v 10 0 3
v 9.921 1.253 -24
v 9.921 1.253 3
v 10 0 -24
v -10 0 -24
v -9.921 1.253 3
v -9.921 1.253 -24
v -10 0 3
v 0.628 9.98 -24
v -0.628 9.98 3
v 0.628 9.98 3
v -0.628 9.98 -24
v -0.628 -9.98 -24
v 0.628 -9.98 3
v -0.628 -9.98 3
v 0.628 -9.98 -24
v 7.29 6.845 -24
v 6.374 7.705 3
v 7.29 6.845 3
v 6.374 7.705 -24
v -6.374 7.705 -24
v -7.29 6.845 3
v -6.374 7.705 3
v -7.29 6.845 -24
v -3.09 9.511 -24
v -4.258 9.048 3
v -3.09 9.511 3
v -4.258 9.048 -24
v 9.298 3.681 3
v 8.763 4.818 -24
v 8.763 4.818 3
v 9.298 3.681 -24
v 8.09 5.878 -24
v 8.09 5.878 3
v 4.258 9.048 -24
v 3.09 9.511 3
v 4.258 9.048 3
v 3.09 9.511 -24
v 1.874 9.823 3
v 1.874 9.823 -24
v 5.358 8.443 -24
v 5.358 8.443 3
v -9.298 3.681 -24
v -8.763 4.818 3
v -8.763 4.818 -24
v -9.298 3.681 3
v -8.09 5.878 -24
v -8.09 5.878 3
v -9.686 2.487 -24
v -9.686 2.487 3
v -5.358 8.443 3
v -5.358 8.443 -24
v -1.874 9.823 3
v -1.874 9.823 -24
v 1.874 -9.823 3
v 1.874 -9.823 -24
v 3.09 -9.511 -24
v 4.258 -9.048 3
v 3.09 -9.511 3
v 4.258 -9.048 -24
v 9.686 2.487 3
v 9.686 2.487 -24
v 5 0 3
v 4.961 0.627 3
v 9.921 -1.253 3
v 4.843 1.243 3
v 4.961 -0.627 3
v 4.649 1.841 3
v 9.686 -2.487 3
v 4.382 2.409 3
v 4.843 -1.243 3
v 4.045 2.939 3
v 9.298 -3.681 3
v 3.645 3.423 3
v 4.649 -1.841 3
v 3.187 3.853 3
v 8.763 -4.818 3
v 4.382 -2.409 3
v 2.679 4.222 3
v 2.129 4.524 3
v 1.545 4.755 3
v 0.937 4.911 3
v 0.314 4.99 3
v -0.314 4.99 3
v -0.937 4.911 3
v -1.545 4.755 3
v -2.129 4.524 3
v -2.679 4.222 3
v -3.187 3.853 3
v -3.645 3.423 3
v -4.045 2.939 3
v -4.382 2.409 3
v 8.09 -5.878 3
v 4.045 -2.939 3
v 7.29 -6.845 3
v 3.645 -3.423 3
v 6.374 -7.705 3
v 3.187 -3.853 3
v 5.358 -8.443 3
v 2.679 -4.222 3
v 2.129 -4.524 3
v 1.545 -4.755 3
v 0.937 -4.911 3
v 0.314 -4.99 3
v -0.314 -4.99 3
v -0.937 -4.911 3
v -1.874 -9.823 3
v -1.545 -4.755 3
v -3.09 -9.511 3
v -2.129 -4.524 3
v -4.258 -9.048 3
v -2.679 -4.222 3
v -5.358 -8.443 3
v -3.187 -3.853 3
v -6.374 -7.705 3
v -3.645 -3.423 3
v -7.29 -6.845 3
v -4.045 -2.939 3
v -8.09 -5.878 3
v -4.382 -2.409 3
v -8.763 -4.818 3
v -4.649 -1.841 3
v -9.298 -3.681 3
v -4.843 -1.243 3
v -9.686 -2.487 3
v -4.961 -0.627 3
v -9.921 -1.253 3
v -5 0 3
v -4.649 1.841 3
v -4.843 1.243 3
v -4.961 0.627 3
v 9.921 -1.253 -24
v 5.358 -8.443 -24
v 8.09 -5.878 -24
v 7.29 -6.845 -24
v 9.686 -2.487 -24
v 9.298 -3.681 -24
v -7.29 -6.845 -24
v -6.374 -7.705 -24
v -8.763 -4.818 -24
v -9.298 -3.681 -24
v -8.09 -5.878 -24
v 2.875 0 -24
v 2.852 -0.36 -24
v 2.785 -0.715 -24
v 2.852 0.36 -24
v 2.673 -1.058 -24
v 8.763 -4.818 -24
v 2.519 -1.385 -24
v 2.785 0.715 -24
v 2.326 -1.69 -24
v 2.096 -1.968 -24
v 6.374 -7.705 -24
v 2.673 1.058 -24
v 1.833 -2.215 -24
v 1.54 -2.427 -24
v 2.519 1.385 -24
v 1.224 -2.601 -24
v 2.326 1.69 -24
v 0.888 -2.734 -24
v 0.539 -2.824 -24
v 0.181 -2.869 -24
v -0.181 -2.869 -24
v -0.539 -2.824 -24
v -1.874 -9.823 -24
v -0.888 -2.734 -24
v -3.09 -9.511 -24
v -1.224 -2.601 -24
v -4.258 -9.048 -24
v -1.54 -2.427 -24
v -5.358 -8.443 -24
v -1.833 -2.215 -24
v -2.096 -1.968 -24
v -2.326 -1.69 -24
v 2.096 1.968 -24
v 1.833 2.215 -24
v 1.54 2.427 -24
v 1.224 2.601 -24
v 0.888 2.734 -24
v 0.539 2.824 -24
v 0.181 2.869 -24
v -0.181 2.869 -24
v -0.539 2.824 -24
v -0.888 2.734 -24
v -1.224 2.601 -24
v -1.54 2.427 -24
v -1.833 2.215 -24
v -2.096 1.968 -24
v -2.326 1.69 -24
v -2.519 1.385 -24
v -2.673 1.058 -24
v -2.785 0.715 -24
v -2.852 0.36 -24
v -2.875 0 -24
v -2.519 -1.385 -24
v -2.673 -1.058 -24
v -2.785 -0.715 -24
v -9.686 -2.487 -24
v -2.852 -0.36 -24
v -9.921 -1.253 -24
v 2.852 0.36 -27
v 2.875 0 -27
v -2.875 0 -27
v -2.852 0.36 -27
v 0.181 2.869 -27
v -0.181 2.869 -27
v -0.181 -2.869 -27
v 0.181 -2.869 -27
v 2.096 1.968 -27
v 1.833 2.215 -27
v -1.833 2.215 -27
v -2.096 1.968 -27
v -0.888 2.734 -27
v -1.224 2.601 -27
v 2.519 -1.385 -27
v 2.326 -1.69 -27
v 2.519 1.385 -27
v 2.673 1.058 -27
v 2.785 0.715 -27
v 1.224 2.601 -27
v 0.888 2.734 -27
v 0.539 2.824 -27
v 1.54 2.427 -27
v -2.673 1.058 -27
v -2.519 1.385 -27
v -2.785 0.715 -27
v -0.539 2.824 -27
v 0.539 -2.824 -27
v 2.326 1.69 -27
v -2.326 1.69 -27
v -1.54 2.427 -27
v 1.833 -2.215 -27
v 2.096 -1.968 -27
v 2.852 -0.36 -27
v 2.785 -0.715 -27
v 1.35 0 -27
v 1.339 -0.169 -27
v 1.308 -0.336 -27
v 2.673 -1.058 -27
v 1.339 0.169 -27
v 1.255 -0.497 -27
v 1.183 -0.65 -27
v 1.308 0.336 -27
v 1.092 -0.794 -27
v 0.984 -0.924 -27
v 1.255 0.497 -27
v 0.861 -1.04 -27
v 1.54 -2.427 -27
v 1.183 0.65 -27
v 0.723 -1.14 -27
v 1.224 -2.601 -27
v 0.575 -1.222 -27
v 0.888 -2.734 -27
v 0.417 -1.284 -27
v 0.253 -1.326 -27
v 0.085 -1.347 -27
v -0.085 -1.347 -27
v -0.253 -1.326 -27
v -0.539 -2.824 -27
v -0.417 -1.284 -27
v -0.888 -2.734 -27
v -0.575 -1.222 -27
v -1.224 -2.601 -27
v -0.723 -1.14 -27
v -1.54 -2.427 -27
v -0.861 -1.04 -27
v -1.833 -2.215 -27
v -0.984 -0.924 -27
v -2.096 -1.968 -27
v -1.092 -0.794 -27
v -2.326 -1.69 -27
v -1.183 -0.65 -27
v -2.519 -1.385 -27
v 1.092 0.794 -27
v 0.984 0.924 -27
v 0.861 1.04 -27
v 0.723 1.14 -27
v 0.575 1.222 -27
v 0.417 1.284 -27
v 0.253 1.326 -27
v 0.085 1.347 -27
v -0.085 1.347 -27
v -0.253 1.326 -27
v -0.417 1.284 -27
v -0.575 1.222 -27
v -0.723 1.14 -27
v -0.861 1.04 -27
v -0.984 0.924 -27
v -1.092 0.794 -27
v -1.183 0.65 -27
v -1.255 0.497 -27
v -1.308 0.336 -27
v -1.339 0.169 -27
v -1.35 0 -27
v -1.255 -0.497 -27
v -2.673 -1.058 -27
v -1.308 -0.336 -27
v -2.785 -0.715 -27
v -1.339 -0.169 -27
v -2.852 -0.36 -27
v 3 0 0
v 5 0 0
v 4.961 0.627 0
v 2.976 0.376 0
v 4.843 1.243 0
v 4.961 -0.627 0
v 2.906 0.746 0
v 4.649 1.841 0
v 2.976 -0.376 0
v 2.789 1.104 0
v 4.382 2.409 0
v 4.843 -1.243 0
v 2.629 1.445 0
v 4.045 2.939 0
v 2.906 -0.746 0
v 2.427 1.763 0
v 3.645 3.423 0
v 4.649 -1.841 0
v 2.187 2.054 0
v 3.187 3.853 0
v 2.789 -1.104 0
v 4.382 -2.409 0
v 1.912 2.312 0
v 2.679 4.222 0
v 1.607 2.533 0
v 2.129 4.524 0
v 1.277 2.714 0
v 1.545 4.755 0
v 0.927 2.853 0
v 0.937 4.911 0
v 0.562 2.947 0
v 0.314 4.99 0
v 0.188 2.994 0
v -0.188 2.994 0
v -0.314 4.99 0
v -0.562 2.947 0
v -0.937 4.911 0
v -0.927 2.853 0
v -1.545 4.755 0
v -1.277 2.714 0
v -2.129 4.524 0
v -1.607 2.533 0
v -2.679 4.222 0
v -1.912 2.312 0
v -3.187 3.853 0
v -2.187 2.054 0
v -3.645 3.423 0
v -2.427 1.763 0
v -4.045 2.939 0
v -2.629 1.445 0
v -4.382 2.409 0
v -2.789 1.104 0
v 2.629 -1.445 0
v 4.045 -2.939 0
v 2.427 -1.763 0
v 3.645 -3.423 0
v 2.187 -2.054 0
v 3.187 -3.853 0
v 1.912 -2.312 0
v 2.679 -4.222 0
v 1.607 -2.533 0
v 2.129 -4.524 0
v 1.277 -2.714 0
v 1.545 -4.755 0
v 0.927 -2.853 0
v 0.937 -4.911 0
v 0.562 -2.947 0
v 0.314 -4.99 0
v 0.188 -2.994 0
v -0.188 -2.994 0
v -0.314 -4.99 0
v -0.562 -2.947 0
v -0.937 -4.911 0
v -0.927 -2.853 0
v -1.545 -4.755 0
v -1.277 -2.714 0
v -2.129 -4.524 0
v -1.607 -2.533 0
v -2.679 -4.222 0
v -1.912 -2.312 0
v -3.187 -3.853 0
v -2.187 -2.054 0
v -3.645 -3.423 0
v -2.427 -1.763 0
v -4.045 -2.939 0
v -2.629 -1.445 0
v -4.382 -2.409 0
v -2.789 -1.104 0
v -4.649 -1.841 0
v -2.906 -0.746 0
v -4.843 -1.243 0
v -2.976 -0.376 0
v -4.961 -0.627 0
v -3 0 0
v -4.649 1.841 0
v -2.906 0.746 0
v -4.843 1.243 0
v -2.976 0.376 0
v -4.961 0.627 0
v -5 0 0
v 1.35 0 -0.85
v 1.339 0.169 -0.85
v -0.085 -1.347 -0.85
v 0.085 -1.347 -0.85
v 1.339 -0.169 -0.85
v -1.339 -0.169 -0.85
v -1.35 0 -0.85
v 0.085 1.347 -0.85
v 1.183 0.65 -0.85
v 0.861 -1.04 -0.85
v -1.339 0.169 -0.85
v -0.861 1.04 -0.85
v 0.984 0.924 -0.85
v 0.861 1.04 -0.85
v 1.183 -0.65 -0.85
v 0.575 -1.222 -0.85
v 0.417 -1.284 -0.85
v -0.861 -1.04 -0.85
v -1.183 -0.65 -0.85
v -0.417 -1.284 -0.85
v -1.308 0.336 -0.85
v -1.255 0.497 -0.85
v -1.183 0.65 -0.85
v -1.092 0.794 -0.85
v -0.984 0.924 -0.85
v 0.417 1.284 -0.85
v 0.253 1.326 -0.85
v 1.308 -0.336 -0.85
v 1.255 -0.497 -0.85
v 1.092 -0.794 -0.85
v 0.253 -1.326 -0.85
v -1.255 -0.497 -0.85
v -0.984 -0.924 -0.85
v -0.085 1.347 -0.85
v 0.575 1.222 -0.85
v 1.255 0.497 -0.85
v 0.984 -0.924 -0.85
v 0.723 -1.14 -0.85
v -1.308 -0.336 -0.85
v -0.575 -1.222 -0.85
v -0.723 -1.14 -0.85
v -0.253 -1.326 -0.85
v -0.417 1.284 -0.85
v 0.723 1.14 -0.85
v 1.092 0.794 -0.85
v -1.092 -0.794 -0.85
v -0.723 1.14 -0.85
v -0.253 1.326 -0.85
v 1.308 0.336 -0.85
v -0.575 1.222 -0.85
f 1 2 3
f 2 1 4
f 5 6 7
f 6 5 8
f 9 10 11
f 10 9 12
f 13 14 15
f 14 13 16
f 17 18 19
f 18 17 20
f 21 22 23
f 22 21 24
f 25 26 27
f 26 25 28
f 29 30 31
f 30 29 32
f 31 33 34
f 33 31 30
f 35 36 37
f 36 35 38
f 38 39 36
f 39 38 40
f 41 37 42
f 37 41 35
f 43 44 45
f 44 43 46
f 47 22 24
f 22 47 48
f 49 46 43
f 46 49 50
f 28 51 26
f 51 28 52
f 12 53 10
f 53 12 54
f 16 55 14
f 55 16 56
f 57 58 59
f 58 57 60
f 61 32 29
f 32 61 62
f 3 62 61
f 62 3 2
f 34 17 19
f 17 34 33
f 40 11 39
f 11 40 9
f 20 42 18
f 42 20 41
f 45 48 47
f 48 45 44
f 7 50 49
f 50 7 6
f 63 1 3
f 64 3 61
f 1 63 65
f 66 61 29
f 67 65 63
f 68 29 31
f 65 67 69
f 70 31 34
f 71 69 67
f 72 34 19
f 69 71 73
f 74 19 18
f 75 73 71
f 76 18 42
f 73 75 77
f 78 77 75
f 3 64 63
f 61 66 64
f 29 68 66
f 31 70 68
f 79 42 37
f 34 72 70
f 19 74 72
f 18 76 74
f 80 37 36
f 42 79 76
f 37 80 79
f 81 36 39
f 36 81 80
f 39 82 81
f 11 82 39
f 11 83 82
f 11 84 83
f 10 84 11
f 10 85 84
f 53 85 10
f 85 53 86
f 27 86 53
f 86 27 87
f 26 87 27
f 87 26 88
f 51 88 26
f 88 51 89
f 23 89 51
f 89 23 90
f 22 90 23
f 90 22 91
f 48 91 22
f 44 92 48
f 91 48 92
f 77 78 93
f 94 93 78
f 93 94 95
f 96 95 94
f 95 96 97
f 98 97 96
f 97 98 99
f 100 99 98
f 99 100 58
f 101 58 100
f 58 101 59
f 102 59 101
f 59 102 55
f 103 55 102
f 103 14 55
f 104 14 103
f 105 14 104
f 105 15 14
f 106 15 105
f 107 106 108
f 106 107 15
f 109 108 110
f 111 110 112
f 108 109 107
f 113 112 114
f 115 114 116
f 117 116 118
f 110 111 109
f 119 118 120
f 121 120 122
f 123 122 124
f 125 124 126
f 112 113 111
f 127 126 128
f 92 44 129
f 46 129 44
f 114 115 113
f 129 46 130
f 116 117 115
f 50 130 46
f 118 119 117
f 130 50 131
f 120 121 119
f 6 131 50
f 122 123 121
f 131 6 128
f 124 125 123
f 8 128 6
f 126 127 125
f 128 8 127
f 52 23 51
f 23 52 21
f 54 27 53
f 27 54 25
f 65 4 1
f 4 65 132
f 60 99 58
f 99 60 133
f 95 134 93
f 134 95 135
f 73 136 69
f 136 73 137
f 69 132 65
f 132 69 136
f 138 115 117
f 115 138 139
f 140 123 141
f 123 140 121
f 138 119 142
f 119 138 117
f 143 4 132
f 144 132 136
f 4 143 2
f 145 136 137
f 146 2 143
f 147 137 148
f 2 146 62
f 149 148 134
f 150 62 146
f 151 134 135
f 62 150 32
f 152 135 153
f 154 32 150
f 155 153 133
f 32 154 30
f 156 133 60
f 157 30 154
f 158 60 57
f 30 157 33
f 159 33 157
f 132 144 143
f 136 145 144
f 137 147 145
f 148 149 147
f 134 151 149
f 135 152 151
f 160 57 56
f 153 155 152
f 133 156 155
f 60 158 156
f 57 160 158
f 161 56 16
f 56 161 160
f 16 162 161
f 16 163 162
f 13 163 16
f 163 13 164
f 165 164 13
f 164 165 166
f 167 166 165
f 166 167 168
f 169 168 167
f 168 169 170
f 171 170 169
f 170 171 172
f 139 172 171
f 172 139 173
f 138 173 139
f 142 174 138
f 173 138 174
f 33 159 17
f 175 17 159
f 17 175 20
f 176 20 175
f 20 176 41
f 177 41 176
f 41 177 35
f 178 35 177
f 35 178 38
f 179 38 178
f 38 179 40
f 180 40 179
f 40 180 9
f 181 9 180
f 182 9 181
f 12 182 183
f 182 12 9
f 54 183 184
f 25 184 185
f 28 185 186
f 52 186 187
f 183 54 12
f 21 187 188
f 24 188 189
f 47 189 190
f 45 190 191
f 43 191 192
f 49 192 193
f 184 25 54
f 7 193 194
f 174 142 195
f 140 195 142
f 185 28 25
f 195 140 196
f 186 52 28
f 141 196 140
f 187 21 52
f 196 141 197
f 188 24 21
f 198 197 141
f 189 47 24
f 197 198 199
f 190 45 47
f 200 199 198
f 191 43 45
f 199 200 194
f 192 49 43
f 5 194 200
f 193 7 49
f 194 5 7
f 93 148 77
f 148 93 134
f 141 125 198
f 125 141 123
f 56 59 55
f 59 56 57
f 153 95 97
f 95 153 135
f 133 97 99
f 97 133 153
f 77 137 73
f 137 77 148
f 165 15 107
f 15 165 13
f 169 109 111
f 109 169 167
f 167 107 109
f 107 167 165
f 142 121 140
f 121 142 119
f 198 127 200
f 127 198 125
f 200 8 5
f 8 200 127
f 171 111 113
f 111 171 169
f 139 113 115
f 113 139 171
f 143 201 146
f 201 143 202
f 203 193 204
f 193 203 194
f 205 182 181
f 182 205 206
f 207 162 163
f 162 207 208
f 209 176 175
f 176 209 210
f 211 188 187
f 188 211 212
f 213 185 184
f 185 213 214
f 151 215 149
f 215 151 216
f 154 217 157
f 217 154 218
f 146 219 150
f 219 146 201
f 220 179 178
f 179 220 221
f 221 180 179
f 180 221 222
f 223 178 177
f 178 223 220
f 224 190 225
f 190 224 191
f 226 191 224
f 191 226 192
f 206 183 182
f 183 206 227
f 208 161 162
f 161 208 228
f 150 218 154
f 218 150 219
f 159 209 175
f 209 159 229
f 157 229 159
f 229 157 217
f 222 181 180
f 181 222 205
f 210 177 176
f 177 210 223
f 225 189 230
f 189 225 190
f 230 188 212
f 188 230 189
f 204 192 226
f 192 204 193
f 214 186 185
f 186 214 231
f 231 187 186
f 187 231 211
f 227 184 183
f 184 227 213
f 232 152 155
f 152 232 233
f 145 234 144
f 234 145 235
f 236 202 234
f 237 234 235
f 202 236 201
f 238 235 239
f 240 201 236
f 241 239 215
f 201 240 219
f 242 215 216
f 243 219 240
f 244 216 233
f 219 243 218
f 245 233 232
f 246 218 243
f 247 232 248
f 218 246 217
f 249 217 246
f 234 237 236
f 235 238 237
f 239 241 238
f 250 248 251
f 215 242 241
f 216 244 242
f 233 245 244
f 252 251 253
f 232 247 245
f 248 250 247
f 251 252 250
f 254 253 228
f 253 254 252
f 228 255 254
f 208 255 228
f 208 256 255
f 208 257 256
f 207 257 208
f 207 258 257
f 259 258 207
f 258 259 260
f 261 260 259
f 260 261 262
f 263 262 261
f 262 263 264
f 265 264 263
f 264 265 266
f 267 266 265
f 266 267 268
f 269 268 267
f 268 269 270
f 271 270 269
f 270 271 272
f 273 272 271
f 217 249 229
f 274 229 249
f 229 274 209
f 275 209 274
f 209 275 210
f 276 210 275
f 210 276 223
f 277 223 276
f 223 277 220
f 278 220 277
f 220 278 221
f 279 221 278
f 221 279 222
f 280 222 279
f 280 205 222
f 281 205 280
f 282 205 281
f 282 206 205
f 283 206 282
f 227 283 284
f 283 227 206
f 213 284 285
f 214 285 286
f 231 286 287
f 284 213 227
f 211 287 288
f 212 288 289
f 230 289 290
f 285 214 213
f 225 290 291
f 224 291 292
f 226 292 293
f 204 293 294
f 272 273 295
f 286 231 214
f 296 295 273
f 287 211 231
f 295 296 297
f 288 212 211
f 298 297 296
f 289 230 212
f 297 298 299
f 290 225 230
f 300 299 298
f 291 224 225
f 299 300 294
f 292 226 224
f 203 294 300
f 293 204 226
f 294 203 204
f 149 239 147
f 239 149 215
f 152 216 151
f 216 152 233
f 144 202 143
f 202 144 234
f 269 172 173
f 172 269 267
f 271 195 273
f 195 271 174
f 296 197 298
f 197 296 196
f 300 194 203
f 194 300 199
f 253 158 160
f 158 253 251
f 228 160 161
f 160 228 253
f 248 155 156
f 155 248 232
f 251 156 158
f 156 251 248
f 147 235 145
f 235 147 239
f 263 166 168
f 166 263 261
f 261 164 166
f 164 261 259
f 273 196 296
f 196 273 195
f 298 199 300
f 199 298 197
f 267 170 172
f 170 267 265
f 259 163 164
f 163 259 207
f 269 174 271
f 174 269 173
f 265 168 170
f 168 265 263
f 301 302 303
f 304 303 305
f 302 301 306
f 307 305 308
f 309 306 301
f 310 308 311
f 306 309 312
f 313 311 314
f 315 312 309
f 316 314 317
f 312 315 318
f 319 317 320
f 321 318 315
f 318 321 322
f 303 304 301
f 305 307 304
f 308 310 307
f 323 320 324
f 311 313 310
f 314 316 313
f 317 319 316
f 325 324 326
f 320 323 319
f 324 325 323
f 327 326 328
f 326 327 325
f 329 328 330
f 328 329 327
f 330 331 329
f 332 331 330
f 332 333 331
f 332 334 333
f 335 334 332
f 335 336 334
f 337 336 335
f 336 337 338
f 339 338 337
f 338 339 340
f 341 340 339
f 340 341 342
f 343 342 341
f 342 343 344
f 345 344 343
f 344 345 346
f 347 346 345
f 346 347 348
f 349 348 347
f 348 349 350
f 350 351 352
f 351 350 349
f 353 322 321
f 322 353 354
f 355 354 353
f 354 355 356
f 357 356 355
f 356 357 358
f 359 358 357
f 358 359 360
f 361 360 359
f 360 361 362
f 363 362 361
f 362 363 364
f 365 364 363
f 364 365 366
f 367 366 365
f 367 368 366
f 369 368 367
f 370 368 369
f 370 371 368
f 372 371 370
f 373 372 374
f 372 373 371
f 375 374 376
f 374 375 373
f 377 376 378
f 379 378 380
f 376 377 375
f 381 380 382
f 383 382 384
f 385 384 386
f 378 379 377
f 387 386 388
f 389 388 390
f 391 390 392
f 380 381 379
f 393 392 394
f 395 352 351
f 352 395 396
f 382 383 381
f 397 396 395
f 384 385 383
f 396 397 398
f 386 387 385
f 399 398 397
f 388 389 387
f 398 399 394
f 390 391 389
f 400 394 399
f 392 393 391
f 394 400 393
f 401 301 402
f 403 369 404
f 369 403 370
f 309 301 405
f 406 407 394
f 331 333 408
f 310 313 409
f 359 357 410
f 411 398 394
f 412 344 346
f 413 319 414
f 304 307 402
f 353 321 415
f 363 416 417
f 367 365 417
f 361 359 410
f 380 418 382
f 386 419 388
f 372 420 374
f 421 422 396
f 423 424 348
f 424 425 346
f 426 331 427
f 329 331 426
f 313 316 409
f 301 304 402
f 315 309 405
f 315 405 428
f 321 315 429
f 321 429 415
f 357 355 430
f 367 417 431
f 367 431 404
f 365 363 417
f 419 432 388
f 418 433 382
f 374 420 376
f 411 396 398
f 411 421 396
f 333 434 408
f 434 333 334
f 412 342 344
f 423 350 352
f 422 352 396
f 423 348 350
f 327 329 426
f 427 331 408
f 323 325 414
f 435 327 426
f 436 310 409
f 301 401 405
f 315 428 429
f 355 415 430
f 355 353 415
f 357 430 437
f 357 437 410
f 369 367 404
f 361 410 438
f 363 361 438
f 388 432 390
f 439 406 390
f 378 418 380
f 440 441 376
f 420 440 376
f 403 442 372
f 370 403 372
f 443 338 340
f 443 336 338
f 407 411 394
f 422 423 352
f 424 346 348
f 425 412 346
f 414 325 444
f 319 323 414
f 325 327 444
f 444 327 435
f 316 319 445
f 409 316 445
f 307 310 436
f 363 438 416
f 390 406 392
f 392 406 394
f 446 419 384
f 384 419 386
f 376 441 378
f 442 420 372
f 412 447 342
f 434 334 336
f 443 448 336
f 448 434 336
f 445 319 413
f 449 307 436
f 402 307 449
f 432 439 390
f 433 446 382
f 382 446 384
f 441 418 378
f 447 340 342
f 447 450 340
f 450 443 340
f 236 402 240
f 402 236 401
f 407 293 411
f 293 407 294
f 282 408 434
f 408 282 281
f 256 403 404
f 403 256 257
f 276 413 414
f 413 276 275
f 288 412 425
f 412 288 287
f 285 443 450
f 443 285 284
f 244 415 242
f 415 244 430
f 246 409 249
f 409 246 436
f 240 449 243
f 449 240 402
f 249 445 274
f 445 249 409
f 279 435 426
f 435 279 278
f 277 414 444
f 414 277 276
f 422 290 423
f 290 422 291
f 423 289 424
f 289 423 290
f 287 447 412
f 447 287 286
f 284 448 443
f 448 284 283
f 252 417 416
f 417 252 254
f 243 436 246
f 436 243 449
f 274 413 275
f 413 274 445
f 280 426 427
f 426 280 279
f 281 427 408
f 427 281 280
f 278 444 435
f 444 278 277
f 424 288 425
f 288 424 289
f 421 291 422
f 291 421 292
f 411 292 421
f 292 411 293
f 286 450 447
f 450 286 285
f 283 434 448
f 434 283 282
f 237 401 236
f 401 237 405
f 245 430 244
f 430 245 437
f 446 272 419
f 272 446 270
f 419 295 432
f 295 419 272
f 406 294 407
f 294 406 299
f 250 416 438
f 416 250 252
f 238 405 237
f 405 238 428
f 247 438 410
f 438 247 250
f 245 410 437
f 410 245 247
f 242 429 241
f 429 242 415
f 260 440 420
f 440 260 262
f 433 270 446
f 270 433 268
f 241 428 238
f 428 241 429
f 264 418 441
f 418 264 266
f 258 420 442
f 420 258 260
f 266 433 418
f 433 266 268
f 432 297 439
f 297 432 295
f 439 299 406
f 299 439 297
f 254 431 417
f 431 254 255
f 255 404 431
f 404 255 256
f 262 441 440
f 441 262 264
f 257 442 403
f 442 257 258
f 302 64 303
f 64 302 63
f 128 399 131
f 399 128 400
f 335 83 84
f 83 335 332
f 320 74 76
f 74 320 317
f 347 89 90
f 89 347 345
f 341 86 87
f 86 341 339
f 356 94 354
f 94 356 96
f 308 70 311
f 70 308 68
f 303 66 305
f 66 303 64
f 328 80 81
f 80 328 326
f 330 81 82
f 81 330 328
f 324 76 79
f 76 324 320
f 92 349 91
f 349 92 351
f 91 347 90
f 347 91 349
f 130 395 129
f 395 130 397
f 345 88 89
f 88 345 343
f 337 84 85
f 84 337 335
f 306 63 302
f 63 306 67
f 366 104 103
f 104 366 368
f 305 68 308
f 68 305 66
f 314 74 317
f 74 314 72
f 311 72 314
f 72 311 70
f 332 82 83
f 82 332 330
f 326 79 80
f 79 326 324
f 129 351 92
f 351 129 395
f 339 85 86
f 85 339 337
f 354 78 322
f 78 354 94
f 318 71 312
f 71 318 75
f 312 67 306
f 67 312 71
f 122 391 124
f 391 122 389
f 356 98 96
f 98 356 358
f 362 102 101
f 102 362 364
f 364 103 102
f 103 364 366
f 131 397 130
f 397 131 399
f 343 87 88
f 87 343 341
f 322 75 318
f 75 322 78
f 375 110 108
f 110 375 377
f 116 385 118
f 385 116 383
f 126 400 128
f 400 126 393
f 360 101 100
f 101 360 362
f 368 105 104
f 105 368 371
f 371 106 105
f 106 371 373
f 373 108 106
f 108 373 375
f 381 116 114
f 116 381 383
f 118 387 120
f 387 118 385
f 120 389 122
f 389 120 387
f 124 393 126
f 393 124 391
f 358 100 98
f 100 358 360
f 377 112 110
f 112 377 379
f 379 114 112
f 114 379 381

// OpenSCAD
$fn = 50;


difference() {
	union() {
		translate(v = [0, 0, -24.0000000000]) {
			cylinder(h = 27, r = 10.0000000000);
		}
		#translate(v = [0, 0, -27.0000000000]) {
			cylinder(h = 27, r = 2.8750000000);
		}
	}
	union() {
		translate(v = [0, 0, 0]) {
			rotate(a = [0, 0, 0]) {
				difference() {
					union() {
						translate(v = [0, 0, -27.0000000000]) {
							cylinder(h = 27, r = 1.0000000000);
						}
						translate(v = [0, 0, -0.8500000000]) {
							cylinder(h = 0.8500000000, r1 = 1.3500000000, r2 = 3.0000000000);
						}
						translate(v = [0, 0, -27.0000000000]) {
							cylinder(h = 27, r = 1.3500000000);
						}
						translate(v = [0, 0, -27.0000000000]) {
							cylinder(h = 27, r = 1.0000000000);
						}
					}
					union();
				}
			}
		}
		#cylinder(h = 3, r = 5.0000000000);
	}
}
